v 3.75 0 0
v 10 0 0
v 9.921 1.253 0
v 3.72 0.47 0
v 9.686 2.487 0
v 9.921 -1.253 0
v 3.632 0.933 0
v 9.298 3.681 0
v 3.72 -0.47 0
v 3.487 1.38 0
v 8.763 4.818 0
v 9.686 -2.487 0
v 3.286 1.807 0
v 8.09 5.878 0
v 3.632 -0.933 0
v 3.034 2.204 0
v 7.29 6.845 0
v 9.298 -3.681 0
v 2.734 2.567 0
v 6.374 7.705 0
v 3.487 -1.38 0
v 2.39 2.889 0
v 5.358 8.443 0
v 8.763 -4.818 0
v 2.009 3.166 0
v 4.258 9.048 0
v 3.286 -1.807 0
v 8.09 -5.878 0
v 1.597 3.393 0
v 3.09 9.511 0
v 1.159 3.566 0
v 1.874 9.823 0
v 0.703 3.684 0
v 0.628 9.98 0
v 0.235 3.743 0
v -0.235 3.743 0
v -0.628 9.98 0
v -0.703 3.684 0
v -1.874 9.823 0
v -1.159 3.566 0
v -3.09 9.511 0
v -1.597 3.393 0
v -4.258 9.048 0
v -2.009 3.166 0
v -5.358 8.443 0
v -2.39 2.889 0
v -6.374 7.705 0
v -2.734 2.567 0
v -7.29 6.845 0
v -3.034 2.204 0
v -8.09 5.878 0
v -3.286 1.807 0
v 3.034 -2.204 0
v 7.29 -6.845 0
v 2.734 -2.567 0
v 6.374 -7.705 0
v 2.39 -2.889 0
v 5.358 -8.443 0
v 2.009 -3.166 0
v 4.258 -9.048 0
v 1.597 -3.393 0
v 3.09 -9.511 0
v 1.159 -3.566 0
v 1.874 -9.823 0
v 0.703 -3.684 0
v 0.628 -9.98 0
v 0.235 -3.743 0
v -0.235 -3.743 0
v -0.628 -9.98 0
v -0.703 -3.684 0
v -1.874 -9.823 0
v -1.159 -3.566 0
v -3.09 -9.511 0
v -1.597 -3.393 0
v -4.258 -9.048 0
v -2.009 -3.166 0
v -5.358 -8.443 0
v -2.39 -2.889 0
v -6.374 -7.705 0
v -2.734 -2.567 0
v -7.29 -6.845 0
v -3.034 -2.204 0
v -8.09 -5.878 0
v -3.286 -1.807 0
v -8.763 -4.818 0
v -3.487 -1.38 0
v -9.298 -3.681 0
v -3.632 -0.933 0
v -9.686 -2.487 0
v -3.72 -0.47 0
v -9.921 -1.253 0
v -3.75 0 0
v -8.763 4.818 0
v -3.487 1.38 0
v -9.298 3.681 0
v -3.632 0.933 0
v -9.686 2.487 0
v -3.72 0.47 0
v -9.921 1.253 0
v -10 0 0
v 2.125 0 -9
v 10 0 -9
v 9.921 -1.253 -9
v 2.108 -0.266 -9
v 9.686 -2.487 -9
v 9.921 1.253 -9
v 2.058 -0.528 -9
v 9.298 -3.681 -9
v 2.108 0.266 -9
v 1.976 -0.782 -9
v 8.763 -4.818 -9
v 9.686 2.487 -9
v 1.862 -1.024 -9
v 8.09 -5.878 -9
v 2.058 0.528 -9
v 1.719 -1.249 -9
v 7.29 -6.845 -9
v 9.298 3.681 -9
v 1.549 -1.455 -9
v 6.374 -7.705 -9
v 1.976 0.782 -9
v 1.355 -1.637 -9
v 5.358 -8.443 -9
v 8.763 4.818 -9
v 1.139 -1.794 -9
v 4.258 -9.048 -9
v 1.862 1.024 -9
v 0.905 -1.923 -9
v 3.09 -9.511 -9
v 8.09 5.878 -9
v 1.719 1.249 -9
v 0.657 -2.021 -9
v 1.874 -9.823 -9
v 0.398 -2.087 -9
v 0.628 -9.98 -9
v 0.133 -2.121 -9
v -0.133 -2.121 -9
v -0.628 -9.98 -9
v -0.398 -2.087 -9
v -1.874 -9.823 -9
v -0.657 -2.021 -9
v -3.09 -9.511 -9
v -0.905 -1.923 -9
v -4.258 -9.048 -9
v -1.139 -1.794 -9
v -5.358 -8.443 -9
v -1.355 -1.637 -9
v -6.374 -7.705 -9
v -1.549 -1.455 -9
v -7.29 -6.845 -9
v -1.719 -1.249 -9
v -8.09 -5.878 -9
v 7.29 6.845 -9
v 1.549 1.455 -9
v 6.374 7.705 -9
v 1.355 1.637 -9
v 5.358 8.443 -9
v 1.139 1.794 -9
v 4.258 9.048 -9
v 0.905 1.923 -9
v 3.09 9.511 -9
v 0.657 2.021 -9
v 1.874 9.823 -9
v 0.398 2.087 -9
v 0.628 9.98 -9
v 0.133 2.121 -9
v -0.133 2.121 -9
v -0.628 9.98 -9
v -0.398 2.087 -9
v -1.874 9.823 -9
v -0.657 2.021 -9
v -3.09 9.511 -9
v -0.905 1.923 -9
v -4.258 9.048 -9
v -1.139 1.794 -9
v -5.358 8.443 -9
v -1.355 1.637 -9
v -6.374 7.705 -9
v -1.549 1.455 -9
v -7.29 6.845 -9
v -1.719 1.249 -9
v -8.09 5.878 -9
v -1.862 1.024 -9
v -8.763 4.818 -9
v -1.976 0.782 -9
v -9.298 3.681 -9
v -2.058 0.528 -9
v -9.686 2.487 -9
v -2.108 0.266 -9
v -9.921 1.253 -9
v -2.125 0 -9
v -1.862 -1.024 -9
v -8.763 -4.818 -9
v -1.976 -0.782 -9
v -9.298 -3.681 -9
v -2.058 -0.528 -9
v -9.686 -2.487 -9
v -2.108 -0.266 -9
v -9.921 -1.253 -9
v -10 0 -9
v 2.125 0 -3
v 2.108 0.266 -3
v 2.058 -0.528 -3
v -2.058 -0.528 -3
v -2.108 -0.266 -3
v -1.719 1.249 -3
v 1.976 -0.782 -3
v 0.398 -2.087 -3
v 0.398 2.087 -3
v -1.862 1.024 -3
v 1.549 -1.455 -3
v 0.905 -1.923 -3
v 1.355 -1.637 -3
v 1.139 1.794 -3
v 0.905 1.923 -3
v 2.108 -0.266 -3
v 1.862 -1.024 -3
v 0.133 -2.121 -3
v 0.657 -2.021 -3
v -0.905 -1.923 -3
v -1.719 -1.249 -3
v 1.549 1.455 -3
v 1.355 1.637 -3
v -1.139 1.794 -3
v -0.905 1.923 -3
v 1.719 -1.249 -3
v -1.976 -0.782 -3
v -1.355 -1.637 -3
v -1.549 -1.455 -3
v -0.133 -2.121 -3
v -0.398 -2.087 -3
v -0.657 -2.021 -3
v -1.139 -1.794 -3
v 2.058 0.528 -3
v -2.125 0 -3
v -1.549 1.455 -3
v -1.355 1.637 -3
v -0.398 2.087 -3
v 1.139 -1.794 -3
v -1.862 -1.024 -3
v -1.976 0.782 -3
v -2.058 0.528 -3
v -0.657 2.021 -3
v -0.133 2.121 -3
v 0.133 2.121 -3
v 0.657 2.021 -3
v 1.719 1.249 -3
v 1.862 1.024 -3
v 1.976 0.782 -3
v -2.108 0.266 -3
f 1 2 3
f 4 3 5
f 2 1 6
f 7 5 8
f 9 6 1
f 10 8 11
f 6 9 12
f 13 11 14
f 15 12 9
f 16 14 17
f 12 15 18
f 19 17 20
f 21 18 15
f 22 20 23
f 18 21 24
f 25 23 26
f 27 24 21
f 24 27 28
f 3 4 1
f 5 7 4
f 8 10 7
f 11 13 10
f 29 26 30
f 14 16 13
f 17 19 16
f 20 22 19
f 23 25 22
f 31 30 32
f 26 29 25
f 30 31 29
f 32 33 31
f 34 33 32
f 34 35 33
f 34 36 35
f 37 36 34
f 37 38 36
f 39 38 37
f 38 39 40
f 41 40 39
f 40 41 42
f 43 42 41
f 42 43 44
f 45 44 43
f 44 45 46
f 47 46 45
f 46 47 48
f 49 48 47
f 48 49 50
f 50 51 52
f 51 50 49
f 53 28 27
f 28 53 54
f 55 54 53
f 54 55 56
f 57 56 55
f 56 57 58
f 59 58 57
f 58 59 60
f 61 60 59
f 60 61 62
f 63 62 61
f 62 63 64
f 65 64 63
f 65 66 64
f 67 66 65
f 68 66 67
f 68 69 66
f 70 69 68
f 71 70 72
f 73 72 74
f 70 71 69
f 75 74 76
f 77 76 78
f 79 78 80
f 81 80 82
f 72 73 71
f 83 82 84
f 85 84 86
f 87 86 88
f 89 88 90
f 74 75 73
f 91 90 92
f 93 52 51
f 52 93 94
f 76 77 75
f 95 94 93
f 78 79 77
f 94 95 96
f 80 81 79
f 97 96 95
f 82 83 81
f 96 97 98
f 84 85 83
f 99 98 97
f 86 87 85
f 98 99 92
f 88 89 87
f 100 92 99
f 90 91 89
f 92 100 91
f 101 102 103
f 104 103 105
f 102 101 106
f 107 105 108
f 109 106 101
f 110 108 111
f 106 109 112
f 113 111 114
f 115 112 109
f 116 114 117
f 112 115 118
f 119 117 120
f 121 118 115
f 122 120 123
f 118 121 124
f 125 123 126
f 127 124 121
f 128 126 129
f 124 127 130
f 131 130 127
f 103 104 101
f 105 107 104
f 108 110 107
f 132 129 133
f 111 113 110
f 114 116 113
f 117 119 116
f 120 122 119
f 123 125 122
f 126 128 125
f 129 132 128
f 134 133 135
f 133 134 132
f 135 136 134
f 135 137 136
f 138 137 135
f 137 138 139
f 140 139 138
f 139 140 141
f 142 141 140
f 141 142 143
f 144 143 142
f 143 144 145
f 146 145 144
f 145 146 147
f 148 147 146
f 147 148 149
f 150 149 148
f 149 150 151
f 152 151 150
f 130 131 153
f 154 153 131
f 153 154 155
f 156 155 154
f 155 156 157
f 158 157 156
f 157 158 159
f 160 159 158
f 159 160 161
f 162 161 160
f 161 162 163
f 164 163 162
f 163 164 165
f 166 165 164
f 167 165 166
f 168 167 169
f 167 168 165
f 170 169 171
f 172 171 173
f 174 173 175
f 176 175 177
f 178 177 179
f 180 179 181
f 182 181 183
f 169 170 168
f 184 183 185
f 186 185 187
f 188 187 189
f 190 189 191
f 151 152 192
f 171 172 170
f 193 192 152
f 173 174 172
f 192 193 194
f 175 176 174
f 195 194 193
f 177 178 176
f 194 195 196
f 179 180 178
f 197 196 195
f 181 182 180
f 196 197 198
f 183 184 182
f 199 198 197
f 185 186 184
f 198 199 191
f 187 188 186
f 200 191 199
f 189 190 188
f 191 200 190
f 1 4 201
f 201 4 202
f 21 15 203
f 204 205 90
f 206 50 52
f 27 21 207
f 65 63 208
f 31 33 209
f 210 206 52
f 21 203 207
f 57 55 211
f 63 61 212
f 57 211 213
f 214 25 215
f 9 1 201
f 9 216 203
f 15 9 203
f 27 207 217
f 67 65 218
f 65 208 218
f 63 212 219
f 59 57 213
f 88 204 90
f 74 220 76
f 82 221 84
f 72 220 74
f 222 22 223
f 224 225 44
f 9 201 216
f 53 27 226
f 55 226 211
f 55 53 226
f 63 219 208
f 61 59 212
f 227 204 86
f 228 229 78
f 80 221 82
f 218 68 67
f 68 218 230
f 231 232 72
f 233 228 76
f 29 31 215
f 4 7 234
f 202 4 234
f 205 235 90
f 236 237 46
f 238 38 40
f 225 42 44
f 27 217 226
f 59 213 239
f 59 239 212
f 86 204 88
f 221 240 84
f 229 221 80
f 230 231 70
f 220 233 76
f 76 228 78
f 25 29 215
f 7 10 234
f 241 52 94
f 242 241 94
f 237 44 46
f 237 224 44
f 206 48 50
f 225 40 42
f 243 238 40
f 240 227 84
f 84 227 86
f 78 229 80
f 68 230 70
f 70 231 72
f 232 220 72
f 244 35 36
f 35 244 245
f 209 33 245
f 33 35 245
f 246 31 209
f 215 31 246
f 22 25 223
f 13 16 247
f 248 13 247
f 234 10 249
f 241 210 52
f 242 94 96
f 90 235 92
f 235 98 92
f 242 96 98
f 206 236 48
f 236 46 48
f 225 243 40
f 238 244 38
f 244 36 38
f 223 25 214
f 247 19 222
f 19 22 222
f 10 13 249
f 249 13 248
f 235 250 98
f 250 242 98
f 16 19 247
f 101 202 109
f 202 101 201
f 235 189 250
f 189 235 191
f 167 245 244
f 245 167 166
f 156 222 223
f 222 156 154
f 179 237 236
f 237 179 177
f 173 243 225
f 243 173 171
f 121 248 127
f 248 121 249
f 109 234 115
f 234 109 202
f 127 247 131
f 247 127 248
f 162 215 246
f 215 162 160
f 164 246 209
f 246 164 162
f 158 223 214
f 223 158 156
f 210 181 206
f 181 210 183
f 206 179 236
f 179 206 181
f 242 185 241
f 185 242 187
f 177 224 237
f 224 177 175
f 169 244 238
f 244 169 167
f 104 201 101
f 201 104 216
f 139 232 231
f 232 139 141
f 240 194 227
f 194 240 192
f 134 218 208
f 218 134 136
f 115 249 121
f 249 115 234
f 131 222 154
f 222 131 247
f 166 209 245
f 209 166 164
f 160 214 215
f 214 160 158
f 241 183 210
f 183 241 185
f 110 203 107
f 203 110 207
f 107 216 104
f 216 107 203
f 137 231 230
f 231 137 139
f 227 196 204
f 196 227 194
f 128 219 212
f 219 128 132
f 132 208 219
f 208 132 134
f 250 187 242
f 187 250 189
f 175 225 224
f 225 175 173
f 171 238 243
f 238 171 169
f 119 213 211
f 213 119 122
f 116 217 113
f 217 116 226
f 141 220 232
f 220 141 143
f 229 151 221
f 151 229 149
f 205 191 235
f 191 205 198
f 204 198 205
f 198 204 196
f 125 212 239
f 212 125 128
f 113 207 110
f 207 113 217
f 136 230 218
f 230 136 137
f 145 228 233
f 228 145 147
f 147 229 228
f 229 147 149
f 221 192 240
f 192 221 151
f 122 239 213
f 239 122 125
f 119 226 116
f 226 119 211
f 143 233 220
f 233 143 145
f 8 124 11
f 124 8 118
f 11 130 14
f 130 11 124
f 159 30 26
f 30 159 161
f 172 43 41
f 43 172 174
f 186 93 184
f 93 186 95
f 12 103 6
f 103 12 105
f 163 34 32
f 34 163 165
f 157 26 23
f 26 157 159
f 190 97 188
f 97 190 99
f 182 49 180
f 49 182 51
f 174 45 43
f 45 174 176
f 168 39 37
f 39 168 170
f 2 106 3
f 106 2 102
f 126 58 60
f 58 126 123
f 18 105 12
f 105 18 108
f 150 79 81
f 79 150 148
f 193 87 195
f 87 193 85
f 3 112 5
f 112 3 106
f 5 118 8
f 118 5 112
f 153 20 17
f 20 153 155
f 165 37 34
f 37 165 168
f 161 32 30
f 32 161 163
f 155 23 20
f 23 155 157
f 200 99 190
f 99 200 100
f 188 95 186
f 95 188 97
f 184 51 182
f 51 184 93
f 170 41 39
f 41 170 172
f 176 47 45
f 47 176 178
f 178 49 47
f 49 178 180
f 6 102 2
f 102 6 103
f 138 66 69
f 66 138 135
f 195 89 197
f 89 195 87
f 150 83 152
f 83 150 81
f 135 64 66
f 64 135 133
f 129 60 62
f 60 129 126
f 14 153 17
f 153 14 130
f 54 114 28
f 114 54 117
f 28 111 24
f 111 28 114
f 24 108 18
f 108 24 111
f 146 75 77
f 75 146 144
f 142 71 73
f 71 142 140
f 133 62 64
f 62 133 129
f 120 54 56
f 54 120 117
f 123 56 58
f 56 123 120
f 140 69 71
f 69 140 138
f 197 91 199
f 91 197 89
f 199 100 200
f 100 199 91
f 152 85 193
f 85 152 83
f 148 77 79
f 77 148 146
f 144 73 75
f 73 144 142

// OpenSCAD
$fn = 50;


difference() {
	union() {
		translate(v = [0, 0, -9.0000000000]) {
			cylinder(h = 9, r = 10.0000000000);
		}
		cylinder(h = 0, r = 19.0000000000);
	}
	union() {
		translate(v = [0, 0, 0]) {
			rotate(a = [0, 0, 0]) {
				difference() {
					union() {
						#translate(v = [0, 0, -9.0000000000]) {
							cylinder(h = 9, r = 2.0000000000);
						}
						#translate(v = [0, 0, -3]) {
							cylinder(h = 3, r = 10.0000000000, r1 = 2.1250000000, r2 = 3.7500000000);
						}
						#translate(v = [0, 0, -9.0000000000]) {
							cylinder(h = 9, r = 2.1250000000);
						}
						#translate(v = [0, 0, -9.0000000000]) {
							cylinder(h = 9, r = 2.0000000000);
						}
					}
					union();
				}
			}
		}
	}
}
